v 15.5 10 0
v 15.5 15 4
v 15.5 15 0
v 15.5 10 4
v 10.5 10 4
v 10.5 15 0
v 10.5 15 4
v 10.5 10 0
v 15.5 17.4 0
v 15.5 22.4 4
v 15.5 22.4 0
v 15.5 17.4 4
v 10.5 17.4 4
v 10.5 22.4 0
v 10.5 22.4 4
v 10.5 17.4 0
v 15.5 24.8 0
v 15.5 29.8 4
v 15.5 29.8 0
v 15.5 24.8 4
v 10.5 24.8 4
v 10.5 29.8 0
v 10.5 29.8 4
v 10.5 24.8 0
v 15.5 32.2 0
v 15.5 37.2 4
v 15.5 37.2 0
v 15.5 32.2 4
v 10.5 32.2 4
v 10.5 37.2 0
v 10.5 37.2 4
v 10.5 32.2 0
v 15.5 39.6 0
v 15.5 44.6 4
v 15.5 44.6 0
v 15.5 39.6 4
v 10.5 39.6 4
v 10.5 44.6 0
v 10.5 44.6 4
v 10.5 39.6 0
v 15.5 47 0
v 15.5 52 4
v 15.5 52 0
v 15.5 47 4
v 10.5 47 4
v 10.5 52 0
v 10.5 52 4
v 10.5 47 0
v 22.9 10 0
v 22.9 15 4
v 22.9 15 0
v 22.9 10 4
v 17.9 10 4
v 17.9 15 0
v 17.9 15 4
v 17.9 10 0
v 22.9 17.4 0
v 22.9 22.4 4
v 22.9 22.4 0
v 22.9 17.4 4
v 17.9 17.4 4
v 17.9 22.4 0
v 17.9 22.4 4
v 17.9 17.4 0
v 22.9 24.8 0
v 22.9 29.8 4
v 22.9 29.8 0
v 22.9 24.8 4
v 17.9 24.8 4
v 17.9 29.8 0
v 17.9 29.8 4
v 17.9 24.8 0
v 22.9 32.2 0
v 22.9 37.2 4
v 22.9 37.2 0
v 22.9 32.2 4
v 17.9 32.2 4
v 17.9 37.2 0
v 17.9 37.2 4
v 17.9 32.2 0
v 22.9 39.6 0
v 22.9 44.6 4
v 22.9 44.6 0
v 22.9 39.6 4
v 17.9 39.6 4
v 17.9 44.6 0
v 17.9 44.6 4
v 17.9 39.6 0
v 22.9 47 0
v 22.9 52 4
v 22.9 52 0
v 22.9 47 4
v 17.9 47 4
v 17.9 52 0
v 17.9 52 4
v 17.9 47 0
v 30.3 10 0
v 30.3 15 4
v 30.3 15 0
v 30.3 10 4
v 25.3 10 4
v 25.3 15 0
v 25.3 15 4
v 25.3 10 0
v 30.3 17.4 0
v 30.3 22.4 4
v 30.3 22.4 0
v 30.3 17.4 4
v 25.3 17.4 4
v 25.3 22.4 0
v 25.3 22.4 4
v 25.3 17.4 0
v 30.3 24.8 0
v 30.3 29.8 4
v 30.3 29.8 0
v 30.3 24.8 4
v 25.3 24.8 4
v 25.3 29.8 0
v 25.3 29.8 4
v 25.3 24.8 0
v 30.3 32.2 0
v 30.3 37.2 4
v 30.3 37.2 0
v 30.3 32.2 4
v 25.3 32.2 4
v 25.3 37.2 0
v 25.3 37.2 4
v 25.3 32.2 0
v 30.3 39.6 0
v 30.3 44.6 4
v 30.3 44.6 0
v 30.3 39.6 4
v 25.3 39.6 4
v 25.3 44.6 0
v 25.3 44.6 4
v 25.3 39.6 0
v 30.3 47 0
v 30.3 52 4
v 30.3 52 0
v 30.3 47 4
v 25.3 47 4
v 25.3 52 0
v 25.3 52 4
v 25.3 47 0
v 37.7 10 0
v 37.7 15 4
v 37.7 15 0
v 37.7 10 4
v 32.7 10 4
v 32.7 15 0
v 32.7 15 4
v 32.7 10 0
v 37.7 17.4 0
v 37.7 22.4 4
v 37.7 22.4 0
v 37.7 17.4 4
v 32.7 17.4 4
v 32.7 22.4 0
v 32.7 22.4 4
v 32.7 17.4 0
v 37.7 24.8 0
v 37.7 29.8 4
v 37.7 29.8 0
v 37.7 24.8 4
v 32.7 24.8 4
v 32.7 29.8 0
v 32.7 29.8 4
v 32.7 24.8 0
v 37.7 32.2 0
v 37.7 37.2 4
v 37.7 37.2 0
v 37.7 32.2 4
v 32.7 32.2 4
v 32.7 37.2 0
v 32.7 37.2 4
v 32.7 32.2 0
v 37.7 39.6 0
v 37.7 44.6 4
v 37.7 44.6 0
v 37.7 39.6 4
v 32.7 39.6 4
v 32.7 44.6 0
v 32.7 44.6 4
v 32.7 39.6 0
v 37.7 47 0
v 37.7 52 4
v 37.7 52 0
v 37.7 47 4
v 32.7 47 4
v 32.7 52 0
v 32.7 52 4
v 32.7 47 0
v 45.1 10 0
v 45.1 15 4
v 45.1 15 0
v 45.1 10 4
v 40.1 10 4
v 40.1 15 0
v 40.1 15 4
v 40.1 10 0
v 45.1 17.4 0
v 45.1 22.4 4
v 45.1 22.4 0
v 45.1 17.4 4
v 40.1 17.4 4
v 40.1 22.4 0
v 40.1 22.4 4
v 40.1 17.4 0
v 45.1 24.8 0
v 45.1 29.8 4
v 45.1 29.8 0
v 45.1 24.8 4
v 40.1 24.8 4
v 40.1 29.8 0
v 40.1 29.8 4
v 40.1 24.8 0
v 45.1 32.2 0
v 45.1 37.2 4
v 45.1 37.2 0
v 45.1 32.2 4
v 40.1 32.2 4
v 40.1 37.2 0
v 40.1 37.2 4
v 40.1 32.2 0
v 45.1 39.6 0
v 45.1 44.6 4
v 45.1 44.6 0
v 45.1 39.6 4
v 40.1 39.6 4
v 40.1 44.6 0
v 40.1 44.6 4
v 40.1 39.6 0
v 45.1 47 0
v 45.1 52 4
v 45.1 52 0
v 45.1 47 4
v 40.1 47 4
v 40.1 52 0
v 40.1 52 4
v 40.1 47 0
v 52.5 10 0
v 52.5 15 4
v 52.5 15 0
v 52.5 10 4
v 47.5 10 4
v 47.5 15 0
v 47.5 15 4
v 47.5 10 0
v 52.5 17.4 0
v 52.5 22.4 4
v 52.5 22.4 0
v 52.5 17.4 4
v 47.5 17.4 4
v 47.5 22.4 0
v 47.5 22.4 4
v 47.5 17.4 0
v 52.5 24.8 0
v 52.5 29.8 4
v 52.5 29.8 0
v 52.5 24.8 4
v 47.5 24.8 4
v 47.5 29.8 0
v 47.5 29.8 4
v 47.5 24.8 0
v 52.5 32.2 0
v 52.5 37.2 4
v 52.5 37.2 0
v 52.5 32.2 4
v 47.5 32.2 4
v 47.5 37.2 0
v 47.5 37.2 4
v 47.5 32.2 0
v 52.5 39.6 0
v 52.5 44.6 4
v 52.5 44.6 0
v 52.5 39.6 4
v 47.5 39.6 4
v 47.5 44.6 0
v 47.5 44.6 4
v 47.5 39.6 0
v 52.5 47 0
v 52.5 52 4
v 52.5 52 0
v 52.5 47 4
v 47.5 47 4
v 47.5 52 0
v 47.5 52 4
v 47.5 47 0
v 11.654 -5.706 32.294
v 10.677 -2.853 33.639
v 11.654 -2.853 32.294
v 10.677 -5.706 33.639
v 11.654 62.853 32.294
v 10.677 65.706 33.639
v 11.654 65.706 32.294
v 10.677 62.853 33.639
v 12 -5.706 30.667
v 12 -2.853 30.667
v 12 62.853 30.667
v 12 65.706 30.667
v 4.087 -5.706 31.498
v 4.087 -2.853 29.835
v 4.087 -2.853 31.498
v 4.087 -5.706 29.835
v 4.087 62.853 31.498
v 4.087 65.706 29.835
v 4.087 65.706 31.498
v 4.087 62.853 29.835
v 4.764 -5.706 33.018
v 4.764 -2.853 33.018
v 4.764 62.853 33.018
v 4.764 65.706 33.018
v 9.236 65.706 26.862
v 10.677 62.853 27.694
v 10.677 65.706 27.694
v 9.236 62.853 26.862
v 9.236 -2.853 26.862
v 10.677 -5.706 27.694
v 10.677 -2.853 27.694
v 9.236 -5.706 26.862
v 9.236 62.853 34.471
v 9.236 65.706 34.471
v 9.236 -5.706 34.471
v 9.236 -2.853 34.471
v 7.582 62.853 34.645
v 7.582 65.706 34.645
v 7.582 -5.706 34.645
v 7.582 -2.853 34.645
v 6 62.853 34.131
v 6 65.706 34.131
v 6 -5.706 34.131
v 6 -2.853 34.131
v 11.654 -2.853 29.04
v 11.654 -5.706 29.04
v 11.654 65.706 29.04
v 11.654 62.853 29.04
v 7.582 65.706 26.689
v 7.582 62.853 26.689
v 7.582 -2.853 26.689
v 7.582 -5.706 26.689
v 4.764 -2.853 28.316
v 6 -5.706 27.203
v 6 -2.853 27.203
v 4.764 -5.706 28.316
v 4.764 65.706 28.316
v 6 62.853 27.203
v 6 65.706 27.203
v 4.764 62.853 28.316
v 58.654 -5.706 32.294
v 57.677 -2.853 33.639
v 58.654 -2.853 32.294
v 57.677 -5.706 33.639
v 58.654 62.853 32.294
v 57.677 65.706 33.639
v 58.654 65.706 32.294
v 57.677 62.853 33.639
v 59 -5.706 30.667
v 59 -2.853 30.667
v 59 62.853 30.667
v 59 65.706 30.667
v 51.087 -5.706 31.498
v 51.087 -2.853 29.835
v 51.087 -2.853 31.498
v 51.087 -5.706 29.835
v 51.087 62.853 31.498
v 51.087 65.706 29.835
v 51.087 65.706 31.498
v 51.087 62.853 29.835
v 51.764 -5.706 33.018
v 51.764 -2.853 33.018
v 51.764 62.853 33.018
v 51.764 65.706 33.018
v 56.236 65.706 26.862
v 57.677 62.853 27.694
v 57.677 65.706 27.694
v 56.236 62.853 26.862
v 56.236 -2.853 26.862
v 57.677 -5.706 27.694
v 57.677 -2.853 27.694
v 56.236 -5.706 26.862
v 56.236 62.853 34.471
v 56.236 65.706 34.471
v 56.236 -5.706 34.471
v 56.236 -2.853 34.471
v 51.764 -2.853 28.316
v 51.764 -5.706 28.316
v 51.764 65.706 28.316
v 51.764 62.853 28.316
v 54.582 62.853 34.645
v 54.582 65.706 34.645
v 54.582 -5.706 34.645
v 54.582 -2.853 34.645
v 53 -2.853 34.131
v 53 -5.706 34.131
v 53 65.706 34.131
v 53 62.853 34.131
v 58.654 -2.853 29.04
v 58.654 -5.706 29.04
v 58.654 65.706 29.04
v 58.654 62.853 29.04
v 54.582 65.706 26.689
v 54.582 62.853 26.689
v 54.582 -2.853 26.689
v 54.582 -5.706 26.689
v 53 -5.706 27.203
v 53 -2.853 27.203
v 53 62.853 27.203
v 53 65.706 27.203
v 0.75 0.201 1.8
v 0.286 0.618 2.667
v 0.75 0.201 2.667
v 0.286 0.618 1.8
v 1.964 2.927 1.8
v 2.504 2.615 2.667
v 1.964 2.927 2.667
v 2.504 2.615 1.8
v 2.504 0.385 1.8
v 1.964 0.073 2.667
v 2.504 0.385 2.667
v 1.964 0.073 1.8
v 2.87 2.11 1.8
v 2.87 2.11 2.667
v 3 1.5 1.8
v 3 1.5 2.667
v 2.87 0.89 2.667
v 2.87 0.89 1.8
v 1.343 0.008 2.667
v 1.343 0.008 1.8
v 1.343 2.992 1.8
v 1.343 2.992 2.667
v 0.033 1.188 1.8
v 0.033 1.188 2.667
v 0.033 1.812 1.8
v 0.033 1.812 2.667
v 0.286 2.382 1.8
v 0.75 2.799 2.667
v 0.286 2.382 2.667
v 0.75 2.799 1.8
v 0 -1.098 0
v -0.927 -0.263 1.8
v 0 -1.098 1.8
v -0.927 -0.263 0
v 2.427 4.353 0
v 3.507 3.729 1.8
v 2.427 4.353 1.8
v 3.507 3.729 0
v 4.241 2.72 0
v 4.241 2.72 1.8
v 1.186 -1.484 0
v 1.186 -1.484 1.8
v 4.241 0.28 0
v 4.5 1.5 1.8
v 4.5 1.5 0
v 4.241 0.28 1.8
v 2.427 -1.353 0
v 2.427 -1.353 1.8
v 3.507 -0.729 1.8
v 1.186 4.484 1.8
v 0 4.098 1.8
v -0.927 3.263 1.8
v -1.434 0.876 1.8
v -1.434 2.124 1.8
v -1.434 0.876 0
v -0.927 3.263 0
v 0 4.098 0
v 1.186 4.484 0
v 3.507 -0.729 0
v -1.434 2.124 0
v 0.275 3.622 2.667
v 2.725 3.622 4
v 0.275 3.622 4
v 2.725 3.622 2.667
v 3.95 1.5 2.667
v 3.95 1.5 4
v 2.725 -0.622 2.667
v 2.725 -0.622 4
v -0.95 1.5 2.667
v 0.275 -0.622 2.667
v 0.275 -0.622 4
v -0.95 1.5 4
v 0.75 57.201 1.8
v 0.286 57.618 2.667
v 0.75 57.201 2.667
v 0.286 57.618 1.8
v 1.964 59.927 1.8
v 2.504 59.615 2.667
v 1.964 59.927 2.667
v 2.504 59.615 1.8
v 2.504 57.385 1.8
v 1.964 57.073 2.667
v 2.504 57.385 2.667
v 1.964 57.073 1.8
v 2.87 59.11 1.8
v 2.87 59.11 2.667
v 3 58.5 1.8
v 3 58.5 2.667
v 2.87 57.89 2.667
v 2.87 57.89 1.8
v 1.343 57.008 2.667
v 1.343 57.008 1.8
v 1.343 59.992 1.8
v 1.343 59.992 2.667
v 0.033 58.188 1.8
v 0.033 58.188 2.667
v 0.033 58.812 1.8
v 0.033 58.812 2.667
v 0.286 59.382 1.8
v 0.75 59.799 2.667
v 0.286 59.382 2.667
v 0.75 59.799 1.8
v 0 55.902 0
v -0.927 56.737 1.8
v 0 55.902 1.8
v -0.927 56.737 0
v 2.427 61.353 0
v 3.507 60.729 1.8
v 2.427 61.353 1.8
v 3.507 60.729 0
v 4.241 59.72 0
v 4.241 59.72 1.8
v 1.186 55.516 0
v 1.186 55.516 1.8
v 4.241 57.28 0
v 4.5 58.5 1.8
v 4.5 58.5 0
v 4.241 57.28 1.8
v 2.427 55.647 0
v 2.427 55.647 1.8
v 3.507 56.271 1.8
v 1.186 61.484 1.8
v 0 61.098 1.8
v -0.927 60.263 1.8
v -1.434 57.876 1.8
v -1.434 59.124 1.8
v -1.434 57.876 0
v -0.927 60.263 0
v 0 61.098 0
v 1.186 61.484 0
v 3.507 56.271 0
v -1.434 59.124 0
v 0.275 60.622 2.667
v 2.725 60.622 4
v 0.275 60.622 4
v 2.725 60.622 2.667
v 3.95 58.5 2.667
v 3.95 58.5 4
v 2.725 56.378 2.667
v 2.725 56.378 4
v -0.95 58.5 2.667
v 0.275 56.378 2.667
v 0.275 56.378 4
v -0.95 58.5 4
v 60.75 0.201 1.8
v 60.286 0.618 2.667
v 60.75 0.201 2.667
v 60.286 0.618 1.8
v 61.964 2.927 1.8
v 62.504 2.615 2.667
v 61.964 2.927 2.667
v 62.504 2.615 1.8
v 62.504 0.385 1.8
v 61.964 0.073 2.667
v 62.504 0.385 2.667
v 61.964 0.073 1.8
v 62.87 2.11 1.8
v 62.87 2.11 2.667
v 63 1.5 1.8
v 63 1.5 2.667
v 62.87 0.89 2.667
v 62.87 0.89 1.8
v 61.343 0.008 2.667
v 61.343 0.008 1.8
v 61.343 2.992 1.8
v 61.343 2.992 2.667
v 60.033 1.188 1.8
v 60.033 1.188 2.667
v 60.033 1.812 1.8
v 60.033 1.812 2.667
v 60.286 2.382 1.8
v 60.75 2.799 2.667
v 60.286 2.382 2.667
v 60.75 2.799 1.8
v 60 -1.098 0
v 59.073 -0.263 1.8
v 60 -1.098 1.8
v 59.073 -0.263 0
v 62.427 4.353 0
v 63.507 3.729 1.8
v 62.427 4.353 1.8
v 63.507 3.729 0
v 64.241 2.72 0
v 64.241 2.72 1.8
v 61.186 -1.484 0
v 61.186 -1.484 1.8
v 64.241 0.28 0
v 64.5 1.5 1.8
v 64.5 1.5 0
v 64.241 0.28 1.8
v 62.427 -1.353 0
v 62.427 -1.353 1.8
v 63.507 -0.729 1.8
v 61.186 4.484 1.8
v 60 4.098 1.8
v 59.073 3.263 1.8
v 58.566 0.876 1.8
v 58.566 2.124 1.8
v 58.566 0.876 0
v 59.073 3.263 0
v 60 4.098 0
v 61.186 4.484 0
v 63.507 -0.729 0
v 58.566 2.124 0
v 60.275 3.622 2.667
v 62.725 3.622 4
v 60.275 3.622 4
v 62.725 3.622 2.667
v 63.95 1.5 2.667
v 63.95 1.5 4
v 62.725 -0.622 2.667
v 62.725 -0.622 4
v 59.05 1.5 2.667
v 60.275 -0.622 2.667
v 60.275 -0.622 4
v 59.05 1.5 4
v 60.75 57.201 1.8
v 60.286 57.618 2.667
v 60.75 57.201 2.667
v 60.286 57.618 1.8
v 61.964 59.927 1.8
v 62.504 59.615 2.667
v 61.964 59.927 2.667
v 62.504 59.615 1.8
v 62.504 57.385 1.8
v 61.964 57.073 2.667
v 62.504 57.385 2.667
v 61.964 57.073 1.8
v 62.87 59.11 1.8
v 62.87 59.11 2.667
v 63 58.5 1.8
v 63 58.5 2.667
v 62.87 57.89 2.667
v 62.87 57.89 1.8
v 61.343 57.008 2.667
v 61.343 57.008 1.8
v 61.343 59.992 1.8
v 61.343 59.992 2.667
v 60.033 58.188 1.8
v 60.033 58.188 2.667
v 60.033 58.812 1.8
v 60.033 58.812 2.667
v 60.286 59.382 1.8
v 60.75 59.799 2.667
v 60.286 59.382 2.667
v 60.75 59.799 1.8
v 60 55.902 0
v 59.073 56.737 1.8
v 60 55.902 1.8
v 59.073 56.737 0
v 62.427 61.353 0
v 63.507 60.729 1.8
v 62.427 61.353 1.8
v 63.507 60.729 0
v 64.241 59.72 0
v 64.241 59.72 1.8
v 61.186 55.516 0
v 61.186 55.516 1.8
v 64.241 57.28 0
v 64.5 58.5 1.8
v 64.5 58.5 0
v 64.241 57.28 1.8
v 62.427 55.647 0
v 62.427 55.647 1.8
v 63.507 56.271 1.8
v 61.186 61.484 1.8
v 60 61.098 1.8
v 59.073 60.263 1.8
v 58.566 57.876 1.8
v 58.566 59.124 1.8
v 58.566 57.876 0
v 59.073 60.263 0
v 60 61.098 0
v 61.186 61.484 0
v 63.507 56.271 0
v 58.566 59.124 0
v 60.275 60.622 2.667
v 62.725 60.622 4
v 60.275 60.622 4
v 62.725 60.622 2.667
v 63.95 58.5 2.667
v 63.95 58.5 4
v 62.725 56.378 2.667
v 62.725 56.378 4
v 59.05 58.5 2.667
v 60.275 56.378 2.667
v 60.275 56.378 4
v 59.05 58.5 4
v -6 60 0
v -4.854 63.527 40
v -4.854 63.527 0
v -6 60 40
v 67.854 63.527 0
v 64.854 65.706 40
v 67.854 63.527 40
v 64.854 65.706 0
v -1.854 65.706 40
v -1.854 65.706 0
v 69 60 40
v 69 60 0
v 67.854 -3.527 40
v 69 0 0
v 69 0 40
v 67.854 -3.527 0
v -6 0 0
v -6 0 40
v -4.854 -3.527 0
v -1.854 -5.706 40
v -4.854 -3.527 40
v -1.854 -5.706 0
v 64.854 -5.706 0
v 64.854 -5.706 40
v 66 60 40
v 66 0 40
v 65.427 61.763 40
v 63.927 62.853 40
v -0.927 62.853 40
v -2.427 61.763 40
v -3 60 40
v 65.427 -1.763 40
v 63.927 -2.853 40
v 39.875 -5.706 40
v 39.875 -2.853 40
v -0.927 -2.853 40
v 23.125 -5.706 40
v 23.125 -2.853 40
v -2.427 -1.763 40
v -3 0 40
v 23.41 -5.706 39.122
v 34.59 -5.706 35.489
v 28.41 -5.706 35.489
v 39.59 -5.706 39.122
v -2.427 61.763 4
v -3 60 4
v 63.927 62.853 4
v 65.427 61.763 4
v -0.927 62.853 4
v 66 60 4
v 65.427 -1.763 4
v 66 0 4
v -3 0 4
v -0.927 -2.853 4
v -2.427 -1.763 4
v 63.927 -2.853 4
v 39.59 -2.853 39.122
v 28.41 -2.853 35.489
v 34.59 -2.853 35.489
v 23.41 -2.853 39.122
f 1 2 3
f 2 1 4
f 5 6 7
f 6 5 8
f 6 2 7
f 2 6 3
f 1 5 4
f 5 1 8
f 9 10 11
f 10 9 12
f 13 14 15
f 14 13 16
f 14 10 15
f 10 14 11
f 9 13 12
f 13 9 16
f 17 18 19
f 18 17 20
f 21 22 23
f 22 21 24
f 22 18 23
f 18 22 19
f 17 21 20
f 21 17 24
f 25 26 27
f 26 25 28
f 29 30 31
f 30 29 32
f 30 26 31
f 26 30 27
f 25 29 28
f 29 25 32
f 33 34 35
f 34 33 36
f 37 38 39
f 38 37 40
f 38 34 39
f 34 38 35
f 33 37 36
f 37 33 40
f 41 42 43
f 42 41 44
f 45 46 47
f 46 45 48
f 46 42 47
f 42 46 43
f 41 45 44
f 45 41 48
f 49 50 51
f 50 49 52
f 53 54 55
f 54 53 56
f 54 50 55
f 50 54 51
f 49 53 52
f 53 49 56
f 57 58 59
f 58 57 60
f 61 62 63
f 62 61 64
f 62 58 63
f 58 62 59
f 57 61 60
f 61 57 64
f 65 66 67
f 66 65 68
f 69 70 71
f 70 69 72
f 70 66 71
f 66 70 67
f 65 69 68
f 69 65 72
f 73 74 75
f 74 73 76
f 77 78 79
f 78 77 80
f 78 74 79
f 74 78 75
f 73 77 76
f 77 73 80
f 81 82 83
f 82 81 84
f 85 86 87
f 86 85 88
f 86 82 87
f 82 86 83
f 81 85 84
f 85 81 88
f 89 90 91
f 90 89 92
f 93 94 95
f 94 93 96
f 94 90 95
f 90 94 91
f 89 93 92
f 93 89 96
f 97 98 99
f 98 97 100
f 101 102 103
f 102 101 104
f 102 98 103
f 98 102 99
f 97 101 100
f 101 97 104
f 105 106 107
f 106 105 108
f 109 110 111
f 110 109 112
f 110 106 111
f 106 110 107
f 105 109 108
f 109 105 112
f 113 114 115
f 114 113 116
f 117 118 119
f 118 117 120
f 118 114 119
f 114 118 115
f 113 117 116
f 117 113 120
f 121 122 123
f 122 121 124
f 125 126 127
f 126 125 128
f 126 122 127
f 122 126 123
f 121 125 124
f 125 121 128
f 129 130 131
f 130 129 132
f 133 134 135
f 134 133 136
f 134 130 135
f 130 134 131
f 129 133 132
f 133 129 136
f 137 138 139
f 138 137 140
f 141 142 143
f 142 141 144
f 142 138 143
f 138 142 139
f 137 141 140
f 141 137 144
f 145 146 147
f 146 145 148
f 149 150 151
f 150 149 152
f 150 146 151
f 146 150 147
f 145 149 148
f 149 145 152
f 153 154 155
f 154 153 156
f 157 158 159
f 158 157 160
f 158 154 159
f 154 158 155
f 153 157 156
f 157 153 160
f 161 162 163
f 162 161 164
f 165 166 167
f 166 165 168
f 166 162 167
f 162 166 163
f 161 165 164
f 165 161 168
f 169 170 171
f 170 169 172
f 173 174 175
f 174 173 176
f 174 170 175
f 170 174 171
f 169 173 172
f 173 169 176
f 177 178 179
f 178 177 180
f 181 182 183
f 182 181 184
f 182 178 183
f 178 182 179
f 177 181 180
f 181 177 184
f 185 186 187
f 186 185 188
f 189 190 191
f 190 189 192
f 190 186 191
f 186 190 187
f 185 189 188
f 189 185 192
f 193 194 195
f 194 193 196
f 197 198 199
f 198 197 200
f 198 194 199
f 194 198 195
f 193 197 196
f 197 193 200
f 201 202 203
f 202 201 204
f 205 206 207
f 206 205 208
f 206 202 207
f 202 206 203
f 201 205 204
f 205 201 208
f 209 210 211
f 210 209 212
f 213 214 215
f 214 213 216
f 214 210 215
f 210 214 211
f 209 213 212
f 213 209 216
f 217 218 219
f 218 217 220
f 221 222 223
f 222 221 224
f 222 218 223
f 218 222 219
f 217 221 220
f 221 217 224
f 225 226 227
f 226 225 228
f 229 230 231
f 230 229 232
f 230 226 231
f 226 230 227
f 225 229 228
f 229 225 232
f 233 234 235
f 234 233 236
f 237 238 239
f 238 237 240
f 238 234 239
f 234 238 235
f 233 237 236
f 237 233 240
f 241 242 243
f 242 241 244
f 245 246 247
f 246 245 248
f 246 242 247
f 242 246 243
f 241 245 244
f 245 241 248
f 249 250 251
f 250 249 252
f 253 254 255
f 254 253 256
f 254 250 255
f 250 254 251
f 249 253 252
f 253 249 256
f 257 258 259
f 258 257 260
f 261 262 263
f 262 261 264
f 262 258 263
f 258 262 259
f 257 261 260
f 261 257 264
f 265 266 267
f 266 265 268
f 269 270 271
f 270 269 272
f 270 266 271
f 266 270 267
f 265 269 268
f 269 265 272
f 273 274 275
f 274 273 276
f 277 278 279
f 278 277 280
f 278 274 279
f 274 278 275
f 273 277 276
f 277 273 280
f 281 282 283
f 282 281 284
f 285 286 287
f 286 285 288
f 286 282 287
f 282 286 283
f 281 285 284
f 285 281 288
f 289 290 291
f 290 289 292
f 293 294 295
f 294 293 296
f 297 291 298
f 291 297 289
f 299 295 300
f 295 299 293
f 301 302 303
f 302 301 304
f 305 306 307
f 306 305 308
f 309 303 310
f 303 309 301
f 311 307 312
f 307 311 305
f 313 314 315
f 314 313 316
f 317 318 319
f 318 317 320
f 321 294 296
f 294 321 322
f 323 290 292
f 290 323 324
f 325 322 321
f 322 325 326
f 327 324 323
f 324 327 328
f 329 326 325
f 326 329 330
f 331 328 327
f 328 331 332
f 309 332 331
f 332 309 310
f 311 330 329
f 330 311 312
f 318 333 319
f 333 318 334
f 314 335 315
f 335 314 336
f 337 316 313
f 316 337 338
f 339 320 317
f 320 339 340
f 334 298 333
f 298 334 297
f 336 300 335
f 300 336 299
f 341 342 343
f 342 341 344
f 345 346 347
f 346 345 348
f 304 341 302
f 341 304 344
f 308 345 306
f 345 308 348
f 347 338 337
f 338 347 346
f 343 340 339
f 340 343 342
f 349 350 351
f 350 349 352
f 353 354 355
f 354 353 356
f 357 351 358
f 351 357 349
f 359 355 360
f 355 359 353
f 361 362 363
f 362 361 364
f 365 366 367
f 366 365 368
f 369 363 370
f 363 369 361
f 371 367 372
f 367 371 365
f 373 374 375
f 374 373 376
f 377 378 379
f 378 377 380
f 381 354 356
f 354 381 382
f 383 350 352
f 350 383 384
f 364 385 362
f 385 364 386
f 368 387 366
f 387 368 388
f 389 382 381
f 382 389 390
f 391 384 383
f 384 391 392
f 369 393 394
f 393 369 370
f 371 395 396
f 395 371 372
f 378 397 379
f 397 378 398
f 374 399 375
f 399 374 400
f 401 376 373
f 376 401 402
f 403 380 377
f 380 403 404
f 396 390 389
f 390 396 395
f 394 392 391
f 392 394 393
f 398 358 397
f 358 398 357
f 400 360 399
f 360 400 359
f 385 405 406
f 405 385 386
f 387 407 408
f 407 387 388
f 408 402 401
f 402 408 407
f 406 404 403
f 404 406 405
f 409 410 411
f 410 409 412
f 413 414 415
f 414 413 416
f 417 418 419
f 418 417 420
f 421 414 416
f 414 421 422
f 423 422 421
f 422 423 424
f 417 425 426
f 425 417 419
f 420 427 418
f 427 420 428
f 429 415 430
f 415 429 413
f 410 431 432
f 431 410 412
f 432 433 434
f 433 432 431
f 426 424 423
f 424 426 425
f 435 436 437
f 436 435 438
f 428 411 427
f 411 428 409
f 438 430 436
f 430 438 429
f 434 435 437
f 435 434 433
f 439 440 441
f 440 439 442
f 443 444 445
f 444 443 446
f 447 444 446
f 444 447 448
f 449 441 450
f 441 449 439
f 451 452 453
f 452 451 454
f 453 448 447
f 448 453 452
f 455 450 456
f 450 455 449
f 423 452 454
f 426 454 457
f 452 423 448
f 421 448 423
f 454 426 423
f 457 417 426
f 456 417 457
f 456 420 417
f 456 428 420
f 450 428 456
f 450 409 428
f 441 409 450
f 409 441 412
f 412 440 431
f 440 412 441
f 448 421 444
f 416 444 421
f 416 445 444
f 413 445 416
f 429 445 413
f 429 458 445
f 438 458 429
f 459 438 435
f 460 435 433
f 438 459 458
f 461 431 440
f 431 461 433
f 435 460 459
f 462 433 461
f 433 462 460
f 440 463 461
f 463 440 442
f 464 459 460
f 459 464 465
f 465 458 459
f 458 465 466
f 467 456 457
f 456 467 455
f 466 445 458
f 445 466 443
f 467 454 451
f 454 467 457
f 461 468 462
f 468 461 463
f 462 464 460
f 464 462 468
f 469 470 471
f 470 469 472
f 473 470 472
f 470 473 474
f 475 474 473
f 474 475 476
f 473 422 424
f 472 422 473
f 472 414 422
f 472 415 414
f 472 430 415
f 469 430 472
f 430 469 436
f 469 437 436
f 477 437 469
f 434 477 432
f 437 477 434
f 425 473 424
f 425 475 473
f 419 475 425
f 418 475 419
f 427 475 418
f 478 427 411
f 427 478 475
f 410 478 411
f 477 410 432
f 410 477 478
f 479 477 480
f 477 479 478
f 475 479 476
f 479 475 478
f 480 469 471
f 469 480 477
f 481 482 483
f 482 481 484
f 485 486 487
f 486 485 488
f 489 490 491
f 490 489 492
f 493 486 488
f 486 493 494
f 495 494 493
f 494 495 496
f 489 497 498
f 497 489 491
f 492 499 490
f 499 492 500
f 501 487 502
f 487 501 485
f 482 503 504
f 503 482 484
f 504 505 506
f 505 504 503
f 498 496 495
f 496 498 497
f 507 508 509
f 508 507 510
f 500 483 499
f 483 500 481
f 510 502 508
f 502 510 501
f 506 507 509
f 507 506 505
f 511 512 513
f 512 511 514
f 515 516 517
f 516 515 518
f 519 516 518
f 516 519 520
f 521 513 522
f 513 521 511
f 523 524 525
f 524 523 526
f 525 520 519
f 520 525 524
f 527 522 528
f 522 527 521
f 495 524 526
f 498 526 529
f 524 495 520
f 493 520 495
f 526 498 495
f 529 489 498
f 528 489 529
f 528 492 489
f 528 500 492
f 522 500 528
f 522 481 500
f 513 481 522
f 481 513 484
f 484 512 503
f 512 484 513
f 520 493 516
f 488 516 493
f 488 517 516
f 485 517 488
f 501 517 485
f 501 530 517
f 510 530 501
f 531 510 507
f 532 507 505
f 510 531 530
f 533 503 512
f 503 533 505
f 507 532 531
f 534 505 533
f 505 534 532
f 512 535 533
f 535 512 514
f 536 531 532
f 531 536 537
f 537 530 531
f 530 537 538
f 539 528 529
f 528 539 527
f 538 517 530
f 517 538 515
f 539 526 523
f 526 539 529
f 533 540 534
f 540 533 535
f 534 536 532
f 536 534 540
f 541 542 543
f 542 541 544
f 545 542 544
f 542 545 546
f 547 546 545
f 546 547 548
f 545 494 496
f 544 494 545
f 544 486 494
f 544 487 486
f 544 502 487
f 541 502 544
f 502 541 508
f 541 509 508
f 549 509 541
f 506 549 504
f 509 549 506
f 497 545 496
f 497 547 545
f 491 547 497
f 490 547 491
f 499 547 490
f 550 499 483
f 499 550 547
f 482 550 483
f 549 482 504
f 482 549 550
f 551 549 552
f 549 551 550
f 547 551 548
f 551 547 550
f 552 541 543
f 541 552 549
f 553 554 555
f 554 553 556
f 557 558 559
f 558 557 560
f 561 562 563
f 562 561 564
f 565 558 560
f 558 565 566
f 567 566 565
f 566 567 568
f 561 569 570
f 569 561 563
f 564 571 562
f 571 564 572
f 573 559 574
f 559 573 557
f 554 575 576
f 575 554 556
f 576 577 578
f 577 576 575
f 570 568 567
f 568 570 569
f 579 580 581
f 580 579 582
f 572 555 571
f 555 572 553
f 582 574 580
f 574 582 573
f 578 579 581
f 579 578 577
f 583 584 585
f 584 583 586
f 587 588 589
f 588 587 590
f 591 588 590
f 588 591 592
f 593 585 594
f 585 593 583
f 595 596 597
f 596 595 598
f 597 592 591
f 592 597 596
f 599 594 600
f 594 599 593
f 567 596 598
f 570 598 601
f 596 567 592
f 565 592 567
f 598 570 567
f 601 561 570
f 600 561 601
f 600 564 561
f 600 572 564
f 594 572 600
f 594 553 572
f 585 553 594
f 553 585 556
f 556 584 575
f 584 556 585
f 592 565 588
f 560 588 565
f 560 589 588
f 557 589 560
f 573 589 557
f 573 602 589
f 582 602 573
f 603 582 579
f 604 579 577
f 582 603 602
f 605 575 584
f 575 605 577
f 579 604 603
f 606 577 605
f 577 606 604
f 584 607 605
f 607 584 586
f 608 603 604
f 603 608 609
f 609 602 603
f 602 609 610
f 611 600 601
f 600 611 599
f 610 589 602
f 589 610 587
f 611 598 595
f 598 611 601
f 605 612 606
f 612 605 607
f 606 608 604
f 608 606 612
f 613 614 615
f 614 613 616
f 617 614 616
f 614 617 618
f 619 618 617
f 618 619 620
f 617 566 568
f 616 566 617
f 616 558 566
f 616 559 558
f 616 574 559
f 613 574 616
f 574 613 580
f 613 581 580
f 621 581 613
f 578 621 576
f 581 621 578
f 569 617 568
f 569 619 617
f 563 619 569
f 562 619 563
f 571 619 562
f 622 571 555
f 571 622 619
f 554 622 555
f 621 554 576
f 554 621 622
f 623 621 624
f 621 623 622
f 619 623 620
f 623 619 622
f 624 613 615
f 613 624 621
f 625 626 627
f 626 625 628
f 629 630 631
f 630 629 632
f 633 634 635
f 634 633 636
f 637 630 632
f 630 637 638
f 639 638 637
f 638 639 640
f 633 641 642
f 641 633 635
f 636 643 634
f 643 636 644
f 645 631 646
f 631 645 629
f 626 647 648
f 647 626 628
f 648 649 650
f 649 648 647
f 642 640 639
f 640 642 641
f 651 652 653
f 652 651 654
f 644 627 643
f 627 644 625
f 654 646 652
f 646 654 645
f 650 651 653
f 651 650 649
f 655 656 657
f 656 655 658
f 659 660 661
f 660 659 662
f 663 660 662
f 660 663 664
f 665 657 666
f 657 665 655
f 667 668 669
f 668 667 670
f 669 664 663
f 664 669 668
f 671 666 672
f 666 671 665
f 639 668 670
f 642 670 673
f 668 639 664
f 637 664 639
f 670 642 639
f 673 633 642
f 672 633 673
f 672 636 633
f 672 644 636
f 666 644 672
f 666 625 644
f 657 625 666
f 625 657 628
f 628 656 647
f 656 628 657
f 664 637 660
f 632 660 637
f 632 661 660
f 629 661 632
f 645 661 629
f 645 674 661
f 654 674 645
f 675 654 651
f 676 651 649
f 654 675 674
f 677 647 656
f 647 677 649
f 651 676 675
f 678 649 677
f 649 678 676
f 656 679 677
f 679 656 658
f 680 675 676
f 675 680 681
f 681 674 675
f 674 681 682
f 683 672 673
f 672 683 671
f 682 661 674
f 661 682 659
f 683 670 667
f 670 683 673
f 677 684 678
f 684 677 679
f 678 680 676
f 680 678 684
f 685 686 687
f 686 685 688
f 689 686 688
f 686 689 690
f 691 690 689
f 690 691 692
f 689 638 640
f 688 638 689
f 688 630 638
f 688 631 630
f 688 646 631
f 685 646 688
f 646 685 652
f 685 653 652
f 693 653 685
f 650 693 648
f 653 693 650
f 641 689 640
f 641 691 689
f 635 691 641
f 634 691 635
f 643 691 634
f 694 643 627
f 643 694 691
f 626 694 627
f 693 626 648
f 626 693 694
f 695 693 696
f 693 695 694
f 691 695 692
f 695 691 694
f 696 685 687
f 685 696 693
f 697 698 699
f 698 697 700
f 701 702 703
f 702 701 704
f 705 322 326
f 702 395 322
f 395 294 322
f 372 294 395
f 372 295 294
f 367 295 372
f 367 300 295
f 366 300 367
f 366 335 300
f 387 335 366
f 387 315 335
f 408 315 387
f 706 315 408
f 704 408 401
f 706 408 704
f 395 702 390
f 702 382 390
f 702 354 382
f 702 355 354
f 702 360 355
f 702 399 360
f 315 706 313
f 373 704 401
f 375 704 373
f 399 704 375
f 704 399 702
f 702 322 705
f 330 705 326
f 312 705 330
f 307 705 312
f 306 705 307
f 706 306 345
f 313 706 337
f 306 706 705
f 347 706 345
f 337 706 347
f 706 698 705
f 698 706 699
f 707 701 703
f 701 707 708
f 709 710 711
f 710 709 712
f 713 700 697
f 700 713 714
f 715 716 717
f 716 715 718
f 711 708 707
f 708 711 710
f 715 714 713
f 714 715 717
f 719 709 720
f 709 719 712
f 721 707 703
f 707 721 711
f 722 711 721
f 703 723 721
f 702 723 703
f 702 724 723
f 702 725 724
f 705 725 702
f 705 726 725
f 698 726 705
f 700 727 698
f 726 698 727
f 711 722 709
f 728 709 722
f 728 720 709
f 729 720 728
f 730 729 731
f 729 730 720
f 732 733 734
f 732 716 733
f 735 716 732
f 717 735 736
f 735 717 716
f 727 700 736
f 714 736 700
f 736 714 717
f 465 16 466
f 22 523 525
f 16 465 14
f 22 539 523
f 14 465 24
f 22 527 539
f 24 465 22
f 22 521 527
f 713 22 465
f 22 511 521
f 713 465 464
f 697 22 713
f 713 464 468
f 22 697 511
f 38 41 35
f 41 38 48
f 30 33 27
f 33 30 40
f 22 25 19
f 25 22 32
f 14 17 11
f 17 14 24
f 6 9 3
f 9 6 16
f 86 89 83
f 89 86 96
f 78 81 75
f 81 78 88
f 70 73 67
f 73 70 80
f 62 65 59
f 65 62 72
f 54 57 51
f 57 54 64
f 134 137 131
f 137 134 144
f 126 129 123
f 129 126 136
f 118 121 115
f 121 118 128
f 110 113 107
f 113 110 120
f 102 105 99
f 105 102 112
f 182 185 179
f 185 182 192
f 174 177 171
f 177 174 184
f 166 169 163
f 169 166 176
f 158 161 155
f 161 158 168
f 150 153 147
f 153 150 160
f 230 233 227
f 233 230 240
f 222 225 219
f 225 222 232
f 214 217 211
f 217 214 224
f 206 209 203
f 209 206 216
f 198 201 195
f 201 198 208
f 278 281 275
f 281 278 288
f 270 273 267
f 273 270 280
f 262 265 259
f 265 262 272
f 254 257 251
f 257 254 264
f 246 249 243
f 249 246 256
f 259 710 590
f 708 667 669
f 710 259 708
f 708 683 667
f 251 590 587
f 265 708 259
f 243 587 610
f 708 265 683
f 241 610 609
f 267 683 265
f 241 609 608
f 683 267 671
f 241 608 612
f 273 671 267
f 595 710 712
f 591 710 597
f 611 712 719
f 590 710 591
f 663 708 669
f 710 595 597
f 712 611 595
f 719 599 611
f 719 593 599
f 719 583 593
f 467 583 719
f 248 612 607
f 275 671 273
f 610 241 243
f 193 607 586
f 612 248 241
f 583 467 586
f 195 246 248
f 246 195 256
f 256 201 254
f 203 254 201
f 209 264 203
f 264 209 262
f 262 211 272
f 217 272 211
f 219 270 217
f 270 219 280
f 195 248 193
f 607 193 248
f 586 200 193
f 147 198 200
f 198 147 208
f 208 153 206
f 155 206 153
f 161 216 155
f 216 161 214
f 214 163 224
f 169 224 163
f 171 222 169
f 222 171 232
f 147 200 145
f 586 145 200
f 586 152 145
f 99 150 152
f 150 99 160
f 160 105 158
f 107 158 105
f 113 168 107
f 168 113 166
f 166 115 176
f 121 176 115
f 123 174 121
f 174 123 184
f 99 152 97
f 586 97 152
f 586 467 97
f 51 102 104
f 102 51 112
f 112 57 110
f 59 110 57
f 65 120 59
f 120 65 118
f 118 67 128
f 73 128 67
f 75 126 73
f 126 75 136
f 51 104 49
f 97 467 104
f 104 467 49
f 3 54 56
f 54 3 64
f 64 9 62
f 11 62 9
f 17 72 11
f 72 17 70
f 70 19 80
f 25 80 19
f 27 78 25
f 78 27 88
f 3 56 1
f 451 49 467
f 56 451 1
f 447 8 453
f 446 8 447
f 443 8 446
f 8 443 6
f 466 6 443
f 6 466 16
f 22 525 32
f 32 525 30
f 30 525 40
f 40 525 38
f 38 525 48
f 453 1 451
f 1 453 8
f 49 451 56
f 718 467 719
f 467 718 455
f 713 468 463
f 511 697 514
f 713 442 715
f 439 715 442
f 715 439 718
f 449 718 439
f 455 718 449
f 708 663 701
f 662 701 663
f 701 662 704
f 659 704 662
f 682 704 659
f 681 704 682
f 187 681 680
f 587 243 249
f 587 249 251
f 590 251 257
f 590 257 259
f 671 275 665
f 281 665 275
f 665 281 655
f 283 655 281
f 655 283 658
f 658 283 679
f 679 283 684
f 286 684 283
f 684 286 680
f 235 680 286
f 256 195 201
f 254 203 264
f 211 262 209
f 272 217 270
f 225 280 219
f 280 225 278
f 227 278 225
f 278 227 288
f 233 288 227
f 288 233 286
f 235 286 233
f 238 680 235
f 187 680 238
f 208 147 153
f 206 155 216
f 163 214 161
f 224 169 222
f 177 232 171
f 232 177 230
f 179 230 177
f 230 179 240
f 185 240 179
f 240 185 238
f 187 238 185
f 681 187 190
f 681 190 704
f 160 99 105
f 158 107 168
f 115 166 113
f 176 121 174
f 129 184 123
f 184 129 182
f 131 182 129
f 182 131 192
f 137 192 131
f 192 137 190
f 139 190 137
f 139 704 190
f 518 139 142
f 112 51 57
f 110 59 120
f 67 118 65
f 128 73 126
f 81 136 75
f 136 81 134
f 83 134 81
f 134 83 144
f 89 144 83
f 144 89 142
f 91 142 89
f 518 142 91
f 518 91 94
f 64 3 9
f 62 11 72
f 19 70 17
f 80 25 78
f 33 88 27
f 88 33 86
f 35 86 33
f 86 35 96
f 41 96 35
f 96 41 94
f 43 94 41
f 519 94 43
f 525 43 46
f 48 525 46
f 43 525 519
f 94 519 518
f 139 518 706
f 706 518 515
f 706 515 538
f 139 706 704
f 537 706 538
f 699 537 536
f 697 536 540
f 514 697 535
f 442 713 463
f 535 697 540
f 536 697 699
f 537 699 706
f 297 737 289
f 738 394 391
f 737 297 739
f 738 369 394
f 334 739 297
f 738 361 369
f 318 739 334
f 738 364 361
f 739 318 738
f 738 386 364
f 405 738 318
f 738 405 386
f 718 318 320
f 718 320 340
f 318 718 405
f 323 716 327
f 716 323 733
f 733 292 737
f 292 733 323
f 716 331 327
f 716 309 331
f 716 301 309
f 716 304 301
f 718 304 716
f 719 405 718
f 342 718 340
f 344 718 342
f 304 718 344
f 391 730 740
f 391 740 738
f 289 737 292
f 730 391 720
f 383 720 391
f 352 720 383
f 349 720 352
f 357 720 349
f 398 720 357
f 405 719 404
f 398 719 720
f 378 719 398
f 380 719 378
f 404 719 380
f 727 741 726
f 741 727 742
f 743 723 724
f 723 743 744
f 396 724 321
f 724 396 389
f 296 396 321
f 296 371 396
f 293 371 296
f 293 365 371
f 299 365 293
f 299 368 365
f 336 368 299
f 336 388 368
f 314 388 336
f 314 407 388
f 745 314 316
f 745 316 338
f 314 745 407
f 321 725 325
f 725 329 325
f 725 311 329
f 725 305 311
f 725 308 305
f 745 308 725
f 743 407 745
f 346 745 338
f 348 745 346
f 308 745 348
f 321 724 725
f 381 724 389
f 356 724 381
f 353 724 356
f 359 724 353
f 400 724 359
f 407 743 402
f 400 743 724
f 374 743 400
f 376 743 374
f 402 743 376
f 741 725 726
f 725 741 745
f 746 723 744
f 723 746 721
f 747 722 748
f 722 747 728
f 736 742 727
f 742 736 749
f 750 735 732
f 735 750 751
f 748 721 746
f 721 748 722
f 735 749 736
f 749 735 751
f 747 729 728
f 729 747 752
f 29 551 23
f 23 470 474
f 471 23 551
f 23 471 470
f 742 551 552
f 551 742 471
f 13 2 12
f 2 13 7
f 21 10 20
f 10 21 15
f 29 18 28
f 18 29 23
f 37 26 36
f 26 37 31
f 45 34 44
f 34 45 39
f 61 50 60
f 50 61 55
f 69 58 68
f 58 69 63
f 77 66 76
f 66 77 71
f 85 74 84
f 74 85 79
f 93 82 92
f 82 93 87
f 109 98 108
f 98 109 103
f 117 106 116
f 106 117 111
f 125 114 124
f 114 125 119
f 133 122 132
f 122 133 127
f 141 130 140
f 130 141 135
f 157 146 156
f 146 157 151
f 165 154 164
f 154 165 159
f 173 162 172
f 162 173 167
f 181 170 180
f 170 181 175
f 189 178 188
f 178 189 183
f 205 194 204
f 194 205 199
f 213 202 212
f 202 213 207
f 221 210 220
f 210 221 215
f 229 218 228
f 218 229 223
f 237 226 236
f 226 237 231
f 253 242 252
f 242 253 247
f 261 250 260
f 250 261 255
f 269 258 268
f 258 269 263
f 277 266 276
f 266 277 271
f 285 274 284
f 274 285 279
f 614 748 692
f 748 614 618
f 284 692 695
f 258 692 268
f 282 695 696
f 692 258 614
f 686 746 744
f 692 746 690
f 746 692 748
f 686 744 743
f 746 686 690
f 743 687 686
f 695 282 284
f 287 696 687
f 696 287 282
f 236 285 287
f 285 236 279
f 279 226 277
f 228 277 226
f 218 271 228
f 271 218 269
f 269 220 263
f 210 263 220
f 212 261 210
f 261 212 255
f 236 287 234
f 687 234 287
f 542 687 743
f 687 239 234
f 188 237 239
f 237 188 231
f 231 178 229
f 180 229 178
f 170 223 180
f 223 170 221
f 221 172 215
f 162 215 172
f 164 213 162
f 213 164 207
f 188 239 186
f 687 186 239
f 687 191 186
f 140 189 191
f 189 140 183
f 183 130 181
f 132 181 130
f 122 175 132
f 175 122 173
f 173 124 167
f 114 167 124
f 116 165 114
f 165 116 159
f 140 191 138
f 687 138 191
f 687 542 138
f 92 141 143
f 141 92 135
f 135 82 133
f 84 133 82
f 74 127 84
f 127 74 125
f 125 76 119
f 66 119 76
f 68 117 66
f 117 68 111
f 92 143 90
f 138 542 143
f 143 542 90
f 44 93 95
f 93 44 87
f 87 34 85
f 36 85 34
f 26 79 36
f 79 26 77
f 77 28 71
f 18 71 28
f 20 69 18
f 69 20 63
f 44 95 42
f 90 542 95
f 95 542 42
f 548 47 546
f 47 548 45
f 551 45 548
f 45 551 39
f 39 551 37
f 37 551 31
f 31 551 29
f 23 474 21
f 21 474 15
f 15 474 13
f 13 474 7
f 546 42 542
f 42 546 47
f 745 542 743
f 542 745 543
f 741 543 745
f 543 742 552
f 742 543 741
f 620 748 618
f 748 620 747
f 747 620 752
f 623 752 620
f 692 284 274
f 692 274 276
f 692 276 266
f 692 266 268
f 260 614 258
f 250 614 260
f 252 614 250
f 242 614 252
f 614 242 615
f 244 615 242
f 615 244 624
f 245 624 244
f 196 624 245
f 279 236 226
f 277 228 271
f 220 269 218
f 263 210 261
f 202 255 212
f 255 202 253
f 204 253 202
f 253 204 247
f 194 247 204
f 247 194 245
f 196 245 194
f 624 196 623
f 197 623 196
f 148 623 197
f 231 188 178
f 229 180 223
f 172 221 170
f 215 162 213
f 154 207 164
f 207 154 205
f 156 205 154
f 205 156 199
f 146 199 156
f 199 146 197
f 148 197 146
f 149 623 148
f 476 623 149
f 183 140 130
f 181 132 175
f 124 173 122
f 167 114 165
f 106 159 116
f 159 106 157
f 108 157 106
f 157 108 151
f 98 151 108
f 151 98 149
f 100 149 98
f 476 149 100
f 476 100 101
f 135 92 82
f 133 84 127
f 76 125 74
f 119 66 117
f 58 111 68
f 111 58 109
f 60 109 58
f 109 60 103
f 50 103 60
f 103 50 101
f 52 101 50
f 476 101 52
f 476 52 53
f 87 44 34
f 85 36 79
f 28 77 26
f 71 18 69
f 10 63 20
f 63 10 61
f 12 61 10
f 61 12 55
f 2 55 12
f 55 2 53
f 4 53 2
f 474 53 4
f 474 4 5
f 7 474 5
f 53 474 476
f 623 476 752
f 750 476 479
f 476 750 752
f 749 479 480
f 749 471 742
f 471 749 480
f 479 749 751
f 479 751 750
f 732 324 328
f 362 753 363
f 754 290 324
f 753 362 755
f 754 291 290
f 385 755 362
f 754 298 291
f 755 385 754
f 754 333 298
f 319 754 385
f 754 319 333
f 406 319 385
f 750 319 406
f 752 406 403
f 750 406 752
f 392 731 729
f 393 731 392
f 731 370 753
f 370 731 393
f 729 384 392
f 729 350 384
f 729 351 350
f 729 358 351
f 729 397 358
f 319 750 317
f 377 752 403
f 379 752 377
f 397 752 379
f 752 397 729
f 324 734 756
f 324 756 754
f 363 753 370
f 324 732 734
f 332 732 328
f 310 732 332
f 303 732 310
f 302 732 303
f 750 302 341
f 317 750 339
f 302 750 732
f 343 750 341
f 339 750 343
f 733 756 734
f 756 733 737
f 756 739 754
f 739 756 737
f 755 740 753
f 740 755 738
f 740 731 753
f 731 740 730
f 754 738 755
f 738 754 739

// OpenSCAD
// file: pegs.scad
module pegs() {
    module standoff() { cylinder(h=10, d=4.9, $fn=6); }

    module peg() {
        translate([pin_d/2,pin_d/2,0])
        linear_extrude(height = base_thickness * 4) 
        circle(d=pin_d, $fn=15);

        translate([pin_d/2,pin_d/2,-0.2])
        linear_extrude(height = base_thickness / 2) 
        circle(d=pin_d + 3, $fn=15);

        difference() {
            translate([pin_d/2,pin_d/2,base_thickness / 1.5]) standoff();
        }
    }

    peg();
    translate([0,pin_depth - pin_d,0]) peg();
    translate([pin_widths - pin_d,0,0]) peg();
    translate([pin_widths - pin_d,pin_depth - pin_d,0]) peg();
}
// file: air_holes.scad
module air_holes() {
    cube_size=5;
    count = 5;
    width = pin_widths * (2/3);
    offset = (width - cube_size) / count;

    translate([pin_widths * 1/6, pin_depth * 1/6,0]) {
        for (x=[0:count]) {
            for (y=[0:count]) {
                translate([offset * x, offset * y, -10]) cube([cube_size,cube_size,100]);
            }
        }
    }
}
// main file
include <./air_holes.scad>;
include <./pegs.scad>;

$fn=10;

pin_widths=63;
pin_depth=60;
base_thickness = 4;
pin_height = 6;
pin_d_base = 5;
pin_d = 3;
case_height = 40;
power_opening = 8;

module shell() {
    linear_extrude(height=case_height) 
    minkowski() {
        square([pin_widths, pin_depth]);
        circle(6);
    }
}

module inset() {
    translate([0,0,base_thickness])
    linear_extrude(height=case_height) 
    minkowski() {
        square([pin_widths, pin_depth]);
        circle(3);
    }
}

module power_hole(diameter=8) {
    $fn=15;
    height = 100;
    
    rotate([90,0,0]) translate([diameter, (case_height * 2/3) + 4,-(height - 10)]) cylinder(h=height,d=diameter);
   
    rotate([90,0,0]) translate([pin_widths - diameter, (case_height * 2/3) + 4,-(height - 10)]) cylinder(h=height,d=diameter);
}

module case(with_top_notch=true) {
    difference() {
        shell();
        inset();
        air_holes();
        power_hole(diameter=8);
        if (with_top_notch) {
            translate([pin_widths/2,0,45]) rotate([90,0,0]) cylinder(h=10,d=20);
        }
        pegs();
    }
}

case(with_top_notch=true);

echo(version=version());
